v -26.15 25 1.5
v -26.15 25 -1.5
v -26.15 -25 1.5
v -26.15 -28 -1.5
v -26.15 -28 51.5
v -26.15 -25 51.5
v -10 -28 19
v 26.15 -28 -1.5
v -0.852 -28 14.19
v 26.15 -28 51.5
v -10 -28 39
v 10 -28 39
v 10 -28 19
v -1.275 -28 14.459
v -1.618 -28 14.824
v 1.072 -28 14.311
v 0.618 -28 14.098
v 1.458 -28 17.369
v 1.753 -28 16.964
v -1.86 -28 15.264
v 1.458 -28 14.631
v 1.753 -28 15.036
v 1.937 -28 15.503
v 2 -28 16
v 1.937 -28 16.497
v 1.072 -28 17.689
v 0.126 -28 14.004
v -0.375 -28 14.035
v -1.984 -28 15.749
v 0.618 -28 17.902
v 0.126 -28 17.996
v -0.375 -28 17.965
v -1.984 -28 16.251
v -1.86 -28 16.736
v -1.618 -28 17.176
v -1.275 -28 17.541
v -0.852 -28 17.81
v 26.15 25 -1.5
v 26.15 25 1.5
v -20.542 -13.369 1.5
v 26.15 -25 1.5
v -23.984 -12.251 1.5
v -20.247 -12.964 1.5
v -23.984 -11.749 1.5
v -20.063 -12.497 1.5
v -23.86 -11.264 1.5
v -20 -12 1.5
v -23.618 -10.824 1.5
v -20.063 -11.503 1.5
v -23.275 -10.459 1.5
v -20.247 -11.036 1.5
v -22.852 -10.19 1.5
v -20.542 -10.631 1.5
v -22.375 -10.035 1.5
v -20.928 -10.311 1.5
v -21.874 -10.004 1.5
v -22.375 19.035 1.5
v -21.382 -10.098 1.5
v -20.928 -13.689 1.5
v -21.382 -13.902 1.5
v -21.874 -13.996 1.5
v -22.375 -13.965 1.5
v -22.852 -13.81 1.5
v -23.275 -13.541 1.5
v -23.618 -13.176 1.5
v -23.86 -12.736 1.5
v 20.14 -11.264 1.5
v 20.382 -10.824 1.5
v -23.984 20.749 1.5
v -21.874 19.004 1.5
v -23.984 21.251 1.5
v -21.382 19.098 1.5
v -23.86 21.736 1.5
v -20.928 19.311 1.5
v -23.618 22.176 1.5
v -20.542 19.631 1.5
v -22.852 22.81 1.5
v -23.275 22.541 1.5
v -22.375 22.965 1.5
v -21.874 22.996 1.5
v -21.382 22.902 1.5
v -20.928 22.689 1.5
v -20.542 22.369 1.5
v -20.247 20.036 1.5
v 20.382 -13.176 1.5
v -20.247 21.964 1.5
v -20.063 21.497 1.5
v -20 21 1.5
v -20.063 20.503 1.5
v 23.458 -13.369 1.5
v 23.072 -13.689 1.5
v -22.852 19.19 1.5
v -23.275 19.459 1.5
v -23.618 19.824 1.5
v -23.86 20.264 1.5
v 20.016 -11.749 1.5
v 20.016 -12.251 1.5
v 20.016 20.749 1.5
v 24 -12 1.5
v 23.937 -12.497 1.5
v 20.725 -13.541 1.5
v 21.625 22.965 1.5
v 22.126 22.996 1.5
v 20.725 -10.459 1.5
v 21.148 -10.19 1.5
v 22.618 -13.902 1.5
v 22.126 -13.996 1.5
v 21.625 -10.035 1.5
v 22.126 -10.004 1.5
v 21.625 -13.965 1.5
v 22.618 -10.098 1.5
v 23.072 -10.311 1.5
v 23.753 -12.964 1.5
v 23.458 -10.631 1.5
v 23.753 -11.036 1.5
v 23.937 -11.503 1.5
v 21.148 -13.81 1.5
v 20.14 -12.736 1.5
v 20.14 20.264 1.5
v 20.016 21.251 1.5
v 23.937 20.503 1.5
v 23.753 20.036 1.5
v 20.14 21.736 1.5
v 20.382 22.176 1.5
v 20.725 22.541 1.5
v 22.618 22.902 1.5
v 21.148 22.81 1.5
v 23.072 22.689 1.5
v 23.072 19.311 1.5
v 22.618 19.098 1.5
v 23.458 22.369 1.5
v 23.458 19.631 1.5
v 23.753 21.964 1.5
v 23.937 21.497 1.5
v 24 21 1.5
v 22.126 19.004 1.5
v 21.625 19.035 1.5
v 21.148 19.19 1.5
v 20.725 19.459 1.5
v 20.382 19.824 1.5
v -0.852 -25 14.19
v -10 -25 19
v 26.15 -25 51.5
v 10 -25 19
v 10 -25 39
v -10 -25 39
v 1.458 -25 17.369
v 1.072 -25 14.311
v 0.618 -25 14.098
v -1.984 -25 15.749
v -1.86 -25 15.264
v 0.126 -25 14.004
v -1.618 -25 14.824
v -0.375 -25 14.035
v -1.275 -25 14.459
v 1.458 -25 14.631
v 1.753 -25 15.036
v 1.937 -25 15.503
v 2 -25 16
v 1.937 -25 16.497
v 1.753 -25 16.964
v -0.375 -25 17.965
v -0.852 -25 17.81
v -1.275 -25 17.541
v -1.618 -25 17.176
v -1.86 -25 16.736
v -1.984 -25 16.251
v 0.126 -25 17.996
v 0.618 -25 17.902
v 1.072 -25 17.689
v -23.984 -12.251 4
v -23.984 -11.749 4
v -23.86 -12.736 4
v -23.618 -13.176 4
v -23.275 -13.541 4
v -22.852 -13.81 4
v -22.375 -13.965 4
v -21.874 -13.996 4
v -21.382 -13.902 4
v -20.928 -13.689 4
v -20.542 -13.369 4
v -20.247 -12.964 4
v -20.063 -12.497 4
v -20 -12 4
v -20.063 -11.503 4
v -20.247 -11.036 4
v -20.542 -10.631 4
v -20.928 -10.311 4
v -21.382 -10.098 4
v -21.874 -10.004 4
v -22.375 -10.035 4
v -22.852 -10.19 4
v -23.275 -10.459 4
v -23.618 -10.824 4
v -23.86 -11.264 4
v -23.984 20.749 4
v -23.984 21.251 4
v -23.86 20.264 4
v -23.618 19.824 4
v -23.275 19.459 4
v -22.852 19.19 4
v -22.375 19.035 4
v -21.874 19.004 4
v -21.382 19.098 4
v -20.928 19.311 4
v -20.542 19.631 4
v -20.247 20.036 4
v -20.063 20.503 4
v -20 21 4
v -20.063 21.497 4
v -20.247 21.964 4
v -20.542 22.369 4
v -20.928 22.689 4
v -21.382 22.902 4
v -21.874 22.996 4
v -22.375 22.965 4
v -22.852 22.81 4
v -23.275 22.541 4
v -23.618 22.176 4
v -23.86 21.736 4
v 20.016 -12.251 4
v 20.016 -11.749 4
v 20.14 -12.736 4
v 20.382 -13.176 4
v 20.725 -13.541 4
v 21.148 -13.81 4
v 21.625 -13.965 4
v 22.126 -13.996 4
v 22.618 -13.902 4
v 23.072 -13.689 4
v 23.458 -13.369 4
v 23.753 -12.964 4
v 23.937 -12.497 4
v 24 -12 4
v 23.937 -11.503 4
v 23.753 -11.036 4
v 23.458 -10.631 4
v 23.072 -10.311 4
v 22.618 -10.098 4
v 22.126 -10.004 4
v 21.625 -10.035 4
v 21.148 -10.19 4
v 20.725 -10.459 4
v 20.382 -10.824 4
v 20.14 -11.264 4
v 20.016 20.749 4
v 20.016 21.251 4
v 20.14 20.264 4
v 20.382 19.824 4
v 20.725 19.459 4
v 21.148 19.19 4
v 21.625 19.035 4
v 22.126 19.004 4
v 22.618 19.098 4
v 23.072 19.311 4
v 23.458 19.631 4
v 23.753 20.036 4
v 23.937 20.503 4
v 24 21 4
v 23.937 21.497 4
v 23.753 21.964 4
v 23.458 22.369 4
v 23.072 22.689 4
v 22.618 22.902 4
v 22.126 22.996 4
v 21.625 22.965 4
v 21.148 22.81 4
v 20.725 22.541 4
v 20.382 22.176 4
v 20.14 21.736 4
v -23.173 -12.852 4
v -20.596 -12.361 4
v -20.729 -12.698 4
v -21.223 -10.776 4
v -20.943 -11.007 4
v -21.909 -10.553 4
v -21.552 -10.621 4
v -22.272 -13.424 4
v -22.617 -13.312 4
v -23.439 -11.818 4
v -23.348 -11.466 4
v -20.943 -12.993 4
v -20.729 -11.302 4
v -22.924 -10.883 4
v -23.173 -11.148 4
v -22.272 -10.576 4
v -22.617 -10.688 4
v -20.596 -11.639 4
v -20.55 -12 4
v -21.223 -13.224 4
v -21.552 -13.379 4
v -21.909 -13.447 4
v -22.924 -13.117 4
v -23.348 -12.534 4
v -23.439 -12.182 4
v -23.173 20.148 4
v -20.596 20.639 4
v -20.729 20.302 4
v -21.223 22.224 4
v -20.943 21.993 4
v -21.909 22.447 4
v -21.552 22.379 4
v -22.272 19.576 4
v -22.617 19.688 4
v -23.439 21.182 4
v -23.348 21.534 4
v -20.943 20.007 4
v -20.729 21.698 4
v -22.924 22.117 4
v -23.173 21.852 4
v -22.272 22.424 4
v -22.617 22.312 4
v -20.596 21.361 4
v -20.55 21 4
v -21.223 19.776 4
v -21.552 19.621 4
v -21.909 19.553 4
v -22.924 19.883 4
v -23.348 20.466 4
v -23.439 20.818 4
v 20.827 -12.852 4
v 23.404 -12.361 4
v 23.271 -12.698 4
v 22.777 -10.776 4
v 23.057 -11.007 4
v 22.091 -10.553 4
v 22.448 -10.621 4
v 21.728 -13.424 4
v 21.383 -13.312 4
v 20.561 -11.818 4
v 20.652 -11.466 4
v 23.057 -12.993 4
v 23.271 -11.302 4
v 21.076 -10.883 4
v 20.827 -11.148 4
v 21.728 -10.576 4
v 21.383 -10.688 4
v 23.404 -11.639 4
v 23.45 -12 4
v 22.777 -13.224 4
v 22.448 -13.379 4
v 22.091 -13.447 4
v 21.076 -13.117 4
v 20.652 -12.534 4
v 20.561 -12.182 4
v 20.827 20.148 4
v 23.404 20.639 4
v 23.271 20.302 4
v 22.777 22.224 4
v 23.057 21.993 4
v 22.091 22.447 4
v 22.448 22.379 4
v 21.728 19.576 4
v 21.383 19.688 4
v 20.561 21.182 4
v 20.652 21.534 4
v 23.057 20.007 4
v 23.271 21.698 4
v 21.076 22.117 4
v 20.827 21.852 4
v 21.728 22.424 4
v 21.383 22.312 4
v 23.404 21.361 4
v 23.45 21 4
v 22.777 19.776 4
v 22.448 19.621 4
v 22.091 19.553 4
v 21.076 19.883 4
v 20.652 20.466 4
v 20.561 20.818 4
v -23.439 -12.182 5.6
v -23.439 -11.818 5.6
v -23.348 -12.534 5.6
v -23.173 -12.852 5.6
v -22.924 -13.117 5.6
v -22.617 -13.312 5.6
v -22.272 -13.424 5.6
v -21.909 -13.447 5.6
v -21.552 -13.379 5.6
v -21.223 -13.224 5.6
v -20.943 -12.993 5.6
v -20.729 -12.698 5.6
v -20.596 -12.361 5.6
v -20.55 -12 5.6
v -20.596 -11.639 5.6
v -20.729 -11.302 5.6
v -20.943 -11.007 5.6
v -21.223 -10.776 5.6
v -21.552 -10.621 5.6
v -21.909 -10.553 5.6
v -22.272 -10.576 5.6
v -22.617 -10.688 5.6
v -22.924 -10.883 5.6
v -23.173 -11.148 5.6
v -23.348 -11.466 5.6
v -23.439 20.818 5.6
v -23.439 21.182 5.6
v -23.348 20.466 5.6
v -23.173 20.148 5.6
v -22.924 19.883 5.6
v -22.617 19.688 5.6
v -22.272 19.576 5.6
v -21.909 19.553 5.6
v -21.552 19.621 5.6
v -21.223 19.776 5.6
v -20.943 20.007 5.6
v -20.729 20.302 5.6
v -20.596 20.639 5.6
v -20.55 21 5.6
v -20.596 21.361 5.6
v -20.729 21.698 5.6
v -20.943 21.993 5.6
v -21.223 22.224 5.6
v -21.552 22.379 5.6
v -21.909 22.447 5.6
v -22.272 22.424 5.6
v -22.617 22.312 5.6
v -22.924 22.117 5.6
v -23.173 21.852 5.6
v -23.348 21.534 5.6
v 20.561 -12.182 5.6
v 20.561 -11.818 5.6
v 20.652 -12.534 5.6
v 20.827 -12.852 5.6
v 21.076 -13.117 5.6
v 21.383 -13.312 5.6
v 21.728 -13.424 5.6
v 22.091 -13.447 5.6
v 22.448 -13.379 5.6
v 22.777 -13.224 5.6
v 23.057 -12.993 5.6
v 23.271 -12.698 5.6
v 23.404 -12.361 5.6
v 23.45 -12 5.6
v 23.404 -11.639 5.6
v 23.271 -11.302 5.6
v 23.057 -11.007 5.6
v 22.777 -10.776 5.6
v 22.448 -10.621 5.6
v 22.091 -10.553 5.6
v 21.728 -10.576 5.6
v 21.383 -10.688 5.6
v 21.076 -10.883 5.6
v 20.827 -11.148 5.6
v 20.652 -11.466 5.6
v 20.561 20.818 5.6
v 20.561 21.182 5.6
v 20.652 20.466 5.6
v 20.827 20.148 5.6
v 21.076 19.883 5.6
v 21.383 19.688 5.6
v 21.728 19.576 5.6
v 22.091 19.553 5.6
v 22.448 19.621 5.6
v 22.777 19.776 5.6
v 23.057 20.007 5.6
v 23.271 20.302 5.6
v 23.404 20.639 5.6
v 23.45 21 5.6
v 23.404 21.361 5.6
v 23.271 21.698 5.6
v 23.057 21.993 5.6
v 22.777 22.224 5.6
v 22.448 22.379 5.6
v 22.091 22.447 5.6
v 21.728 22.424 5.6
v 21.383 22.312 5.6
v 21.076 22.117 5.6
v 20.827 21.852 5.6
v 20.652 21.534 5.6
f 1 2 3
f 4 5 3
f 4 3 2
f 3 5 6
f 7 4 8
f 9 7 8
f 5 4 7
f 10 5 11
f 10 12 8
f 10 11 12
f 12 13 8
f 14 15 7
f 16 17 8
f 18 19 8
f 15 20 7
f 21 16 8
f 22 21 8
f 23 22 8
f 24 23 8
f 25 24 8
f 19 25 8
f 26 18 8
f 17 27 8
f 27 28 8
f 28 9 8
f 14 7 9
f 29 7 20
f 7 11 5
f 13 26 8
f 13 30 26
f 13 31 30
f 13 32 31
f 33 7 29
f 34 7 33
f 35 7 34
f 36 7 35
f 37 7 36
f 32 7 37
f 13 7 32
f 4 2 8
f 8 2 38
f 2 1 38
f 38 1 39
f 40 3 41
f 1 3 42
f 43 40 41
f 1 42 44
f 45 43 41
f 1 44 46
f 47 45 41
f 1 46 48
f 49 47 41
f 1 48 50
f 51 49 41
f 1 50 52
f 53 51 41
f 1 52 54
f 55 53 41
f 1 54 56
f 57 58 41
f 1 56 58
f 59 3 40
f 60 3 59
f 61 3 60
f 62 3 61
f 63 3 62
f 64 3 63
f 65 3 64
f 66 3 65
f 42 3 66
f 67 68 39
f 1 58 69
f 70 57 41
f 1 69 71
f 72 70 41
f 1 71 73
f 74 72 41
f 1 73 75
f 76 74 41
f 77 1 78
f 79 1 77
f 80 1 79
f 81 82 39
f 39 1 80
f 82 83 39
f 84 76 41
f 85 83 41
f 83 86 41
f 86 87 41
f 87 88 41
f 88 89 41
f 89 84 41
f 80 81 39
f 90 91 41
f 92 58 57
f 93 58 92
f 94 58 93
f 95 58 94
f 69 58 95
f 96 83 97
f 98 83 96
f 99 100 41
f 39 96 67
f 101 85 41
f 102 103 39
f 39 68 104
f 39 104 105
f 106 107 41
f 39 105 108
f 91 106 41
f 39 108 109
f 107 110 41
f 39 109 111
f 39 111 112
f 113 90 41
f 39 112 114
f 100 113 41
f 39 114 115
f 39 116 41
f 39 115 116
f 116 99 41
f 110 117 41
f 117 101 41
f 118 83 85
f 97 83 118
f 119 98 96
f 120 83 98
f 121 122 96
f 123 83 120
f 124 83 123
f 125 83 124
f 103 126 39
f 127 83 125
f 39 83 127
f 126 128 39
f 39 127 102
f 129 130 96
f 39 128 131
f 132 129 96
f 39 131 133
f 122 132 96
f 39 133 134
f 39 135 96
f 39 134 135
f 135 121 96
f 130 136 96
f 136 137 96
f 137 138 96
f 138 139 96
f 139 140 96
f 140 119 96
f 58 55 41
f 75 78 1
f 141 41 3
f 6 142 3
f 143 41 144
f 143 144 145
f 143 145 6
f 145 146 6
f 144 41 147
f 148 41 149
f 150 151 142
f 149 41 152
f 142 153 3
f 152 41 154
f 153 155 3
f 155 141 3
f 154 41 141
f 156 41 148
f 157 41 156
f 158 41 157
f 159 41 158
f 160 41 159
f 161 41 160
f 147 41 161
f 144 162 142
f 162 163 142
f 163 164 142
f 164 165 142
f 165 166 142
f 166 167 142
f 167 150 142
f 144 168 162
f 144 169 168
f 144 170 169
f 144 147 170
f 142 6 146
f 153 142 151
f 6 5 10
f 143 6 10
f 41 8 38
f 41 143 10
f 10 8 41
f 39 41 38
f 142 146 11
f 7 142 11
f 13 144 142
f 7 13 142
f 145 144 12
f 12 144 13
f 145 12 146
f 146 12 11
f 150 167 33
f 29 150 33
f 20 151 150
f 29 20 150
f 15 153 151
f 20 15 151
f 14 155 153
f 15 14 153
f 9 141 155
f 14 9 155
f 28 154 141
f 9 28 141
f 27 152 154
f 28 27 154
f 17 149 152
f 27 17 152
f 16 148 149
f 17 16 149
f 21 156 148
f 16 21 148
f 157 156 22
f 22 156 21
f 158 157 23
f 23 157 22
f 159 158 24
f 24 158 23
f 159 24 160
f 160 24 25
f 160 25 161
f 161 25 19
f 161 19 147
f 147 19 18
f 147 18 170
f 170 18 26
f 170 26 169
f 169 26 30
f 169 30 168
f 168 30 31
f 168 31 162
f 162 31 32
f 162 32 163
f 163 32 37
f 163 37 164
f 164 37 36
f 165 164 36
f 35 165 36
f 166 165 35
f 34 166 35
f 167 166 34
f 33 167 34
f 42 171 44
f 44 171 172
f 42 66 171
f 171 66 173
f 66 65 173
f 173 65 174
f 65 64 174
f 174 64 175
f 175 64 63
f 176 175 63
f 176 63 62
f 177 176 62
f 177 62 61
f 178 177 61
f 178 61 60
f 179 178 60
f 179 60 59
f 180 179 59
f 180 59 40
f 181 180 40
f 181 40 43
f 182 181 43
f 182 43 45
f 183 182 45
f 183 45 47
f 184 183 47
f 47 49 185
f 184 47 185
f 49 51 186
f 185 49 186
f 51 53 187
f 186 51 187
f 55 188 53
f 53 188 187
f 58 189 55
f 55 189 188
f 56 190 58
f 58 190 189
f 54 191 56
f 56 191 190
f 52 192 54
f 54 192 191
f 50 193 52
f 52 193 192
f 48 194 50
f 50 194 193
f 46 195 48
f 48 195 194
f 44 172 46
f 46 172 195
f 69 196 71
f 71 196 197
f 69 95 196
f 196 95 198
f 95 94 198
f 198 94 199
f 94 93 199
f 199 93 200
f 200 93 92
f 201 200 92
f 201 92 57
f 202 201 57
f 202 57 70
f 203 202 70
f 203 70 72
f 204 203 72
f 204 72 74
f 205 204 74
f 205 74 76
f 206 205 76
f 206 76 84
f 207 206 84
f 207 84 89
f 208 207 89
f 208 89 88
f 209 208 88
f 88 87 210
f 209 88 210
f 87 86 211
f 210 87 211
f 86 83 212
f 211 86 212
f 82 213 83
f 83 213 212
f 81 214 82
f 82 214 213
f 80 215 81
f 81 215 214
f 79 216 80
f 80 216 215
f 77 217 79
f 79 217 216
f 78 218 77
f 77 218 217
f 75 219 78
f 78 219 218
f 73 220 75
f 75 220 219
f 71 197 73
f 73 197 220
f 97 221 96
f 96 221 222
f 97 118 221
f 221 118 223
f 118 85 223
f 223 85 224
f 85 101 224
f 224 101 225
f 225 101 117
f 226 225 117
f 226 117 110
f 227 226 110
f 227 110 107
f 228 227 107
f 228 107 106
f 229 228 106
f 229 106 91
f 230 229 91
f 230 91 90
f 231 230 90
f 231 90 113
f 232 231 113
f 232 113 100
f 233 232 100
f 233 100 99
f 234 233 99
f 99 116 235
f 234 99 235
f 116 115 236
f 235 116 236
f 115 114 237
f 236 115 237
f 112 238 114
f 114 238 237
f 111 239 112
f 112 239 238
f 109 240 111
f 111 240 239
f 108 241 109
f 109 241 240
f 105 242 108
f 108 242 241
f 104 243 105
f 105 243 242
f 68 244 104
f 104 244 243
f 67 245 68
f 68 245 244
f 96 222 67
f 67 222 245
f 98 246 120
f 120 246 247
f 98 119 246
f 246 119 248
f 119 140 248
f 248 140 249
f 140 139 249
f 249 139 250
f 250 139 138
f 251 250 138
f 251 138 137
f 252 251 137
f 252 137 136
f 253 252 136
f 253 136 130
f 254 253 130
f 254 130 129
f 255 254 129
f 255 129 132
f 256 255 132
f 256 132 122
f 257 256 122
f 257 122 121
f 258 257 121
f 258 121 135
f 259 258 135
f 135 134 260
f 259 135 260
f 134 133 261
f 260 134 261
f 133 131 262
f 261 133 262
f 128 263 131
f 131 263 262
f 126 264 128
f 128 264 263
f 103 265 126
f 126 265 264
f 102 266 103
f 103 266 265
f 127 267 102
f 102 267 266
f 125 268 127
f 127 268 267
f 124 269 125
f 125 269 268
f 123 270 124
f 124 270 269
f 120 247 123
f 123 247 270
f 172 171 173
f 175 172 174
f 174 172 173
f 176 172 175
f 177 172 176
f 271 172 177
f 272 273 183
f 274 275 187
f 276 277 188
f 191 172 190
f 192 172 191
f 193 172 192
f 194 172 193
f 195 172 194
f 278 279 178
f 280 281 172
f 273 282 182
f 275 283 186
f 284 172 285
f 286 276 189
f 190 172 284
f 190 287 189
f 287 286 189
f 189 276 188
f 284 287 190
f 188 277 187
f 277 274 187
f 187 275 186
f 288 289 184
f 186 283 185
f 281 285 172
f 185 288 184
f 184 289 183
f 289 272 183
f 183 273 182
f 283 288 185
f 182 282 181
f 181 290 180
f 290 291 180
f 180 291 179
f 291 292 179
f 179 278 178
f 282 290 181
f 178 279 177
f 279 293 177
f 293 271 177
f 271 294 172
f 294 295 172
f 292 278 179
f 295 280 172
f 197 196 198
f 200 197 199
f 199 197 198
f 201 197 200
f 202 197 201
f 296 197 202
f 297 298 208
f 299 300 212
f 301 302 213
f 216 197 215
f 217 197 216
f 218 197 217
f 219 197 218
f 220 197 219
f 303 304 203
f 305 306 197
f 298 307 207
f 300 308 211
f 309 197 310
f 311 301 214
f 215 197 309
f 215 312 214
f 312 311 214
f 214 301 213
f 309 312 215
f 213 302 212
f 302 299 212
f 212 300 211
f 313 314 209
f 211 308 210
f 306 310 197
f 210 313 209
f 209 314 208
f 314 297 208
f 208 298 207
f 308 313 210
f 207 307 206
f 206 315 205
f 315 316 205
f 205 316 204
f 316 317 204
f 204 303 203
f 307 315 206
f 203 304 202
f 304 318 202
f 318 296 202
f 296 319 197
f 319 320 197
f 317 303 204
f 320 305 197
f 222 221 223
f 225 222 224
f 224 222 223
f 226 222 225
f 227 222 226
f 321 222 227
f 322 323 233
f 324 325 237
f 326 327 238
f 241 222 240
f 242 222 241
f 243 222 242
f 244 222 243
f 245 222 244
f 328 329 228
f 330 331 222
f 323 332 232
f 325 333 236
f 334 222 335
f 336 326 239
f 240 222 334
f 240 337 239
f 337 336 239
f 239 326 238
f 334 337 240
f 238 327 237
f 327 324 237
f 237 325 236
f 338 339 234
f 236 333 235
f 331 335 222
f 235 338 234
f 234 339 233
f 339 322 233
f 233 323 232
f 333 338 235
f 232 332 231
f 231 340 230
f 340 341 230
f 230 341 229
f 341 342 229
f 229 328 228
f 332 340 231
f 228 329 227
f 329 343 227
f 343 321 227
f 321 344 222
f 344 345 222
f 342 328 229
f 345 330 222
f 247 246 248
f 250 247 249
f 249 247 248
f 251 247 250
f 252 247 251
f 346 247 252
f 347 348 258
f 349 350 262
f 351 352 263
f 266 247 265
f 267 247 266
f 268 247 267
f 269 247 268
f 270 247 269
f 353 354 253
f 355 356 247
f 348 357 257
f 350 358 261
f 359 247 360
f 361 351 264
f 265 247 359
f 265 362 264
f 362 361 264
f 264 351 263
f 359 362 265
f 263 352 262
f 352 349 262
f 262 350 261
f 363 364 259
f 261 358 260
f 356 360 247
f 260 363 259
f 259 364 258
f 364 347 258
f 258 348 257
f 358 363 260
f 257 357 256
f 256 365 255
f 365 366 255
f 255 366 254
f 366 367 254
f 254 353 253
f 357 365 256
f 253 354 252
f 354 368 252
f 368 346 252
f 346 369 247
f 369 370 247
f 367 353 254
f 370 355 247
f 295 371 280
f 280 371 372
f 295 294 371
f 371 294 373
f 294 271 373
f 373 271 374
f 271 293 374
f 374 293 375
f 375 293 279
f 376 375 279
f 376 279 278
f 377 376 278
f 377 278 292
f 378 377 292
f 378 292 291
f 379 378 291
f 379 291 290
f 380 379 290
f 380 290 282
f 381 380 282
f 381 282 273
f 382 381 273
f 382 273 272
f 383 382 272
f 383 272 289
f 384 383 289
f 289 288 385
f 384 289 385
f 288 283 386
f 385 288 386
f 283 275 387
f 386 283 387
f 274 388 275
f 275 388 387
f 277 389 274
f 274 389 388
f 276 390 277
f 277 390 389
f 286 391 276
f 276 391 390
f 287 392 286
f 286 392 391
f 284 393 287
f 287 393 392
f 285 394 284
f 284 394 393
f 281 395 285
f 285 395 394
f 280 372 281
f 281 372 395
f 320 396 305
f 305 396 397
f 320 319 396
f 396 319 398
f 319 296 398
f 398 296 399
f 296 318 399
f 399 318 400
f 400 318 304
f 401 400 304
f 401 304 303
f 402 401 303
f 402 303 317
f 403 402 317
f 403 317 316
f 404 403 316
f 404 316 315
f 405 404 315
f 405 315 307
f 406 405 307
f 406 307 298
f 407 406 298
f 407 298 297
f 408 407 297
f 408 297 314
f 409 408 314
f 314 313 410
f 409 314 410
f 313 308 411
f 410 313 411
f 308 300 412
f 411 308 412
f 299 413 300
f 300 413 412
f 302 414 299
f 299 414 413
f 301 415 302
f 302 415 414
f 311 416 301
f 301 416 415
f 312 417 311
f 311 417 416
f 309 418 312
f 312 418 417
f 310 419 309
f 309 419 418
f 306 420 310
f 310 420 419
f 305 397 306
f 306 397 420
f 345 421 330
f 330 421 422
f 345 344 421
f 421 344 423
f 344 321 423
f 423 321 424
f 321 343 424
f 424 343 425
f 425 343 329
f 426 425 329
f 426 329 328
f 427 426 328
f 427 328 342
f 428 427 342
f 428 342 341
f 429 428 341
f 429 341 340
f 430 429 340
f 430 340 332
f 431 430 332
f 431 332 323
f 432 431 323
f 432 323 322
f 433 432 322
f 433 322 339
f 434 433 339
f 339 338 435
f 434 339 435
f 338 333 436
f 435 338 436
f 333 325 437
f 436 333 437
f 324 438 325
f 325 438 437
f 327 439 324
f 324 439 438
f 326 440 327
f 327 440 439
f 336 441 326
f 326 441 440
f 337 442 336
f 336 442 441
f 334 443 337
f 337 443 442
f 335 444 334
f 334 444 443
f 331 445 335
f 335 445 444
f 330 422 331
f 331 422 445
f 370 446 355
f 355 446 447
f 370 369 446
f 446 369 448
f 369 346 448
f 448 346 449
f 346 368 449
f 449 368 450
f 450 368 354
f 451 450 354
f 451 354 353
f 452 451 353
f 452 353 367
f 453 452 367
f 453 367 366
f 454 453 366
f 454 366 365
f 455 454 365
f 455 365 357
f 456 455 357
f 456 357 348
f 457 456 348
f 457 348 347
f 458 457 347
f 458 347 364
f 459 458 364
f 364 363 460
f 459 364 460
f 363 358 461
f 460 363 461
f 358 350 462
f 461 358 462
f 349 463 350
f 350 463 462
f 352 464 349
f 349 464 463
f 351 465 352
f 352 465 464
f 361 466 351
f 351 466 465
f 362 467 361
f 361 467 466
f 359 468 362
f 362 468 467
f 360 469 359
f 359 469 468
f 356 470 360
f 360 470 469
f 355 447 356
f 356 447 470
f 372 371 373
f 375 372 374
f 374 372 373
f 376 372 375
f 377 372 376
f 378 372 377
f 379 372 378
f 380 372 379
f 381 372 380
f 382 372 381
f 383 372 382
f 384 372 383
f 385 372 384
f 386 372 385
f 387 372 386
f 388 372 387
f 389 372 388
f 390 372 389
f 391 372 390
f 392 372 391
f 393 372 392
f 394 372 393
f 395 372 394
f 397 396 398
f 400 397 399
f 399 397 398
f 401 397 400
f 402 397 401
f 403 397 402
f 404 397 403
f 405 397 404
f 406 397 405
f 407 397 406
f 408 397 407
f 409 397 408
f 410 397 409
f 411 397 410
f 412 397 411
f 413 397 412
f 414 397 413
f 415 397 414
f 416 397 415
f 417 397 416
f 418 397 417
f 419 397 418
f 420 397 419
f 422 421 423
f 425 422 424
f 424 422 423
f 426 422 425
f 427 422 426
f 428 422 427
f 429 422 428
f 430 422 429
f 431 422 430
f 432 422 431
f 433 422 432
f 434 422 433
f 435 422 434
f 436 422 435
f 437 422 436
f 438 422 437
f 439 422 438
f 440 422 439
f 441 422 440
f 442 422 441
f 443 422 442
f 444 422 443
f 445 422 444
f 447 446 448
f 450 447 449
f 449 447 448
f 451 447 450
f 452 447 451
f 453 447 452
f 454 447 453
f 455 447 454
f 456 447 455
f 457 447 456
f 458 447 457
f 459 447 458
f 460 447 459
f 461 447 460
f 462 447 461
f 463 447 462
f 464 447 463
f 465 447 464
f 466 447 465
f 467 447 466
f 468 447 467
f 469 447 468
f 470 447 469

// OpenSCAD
$fn = 25;
base_width = 52.3;
base_length = 50;
base_thickness = 3;
front_height = 47.5;
hole_shift = 4.5;
pcb_hole_rad = 1.45;
pcb_thickness = 1.6;
pcb_stand_off = 2.5;
standoff_rad = 2;
hole_x_separation = 44;
hole_y_separation = 33;
front_hole_radius = 2;
front_hole_offset = 12;
window = 20;
window_offset = 25;

module standoff()
{
	translate([0,0,(pcb_stand_off+pcb_thickness)/2])
		cylinder(r = pcb_hole_rad, h=pcb_stand_off+pcb_thickness, center=true);
	translate([0,0,(pcb_stand_off)/2])
		cylinder(r = standoff_rad, h=pcb_stand_off, center=true);
}

cube([base_width, base_length, base_thickness], center=true);
translate([hole_x_separation/2, hole_y_separation/2+hole_shift, base_thickness/2]) standoff();
translate([-hole_x_separation/2, hole_y_separation/2+hole_shift, base_thickness/2]) standoff();
translate([hole_x_separation/2, -hole_y_separation/2+hole_shift, base_thickness/2]) standoff();
translate([-hole_x_separation/2, -hole_y_separation/2+hole_shift, base_thickness/2]) standoff();

translate([0,-base_length/2-base_thickness/2,(front_height+pcb_stand_off)/2])
	difference()
	{
		cube([base_width, base_thickness, front_height+base_thickness+pcb_stand_off], center=true);
		translate([0,0,-(front_height-base_thickness-pcb_stand_off)/2+window_offset])
			cube([window,base_thickness,window],center=true);
		translate([0,0,-(front_height-base_thickness-pcb_stand_off)/2+front_hole_offset])
			rotate([90,0,0]) cylinder(r=front_hole_radius, h = base_thickness*2, center=true);
	}
